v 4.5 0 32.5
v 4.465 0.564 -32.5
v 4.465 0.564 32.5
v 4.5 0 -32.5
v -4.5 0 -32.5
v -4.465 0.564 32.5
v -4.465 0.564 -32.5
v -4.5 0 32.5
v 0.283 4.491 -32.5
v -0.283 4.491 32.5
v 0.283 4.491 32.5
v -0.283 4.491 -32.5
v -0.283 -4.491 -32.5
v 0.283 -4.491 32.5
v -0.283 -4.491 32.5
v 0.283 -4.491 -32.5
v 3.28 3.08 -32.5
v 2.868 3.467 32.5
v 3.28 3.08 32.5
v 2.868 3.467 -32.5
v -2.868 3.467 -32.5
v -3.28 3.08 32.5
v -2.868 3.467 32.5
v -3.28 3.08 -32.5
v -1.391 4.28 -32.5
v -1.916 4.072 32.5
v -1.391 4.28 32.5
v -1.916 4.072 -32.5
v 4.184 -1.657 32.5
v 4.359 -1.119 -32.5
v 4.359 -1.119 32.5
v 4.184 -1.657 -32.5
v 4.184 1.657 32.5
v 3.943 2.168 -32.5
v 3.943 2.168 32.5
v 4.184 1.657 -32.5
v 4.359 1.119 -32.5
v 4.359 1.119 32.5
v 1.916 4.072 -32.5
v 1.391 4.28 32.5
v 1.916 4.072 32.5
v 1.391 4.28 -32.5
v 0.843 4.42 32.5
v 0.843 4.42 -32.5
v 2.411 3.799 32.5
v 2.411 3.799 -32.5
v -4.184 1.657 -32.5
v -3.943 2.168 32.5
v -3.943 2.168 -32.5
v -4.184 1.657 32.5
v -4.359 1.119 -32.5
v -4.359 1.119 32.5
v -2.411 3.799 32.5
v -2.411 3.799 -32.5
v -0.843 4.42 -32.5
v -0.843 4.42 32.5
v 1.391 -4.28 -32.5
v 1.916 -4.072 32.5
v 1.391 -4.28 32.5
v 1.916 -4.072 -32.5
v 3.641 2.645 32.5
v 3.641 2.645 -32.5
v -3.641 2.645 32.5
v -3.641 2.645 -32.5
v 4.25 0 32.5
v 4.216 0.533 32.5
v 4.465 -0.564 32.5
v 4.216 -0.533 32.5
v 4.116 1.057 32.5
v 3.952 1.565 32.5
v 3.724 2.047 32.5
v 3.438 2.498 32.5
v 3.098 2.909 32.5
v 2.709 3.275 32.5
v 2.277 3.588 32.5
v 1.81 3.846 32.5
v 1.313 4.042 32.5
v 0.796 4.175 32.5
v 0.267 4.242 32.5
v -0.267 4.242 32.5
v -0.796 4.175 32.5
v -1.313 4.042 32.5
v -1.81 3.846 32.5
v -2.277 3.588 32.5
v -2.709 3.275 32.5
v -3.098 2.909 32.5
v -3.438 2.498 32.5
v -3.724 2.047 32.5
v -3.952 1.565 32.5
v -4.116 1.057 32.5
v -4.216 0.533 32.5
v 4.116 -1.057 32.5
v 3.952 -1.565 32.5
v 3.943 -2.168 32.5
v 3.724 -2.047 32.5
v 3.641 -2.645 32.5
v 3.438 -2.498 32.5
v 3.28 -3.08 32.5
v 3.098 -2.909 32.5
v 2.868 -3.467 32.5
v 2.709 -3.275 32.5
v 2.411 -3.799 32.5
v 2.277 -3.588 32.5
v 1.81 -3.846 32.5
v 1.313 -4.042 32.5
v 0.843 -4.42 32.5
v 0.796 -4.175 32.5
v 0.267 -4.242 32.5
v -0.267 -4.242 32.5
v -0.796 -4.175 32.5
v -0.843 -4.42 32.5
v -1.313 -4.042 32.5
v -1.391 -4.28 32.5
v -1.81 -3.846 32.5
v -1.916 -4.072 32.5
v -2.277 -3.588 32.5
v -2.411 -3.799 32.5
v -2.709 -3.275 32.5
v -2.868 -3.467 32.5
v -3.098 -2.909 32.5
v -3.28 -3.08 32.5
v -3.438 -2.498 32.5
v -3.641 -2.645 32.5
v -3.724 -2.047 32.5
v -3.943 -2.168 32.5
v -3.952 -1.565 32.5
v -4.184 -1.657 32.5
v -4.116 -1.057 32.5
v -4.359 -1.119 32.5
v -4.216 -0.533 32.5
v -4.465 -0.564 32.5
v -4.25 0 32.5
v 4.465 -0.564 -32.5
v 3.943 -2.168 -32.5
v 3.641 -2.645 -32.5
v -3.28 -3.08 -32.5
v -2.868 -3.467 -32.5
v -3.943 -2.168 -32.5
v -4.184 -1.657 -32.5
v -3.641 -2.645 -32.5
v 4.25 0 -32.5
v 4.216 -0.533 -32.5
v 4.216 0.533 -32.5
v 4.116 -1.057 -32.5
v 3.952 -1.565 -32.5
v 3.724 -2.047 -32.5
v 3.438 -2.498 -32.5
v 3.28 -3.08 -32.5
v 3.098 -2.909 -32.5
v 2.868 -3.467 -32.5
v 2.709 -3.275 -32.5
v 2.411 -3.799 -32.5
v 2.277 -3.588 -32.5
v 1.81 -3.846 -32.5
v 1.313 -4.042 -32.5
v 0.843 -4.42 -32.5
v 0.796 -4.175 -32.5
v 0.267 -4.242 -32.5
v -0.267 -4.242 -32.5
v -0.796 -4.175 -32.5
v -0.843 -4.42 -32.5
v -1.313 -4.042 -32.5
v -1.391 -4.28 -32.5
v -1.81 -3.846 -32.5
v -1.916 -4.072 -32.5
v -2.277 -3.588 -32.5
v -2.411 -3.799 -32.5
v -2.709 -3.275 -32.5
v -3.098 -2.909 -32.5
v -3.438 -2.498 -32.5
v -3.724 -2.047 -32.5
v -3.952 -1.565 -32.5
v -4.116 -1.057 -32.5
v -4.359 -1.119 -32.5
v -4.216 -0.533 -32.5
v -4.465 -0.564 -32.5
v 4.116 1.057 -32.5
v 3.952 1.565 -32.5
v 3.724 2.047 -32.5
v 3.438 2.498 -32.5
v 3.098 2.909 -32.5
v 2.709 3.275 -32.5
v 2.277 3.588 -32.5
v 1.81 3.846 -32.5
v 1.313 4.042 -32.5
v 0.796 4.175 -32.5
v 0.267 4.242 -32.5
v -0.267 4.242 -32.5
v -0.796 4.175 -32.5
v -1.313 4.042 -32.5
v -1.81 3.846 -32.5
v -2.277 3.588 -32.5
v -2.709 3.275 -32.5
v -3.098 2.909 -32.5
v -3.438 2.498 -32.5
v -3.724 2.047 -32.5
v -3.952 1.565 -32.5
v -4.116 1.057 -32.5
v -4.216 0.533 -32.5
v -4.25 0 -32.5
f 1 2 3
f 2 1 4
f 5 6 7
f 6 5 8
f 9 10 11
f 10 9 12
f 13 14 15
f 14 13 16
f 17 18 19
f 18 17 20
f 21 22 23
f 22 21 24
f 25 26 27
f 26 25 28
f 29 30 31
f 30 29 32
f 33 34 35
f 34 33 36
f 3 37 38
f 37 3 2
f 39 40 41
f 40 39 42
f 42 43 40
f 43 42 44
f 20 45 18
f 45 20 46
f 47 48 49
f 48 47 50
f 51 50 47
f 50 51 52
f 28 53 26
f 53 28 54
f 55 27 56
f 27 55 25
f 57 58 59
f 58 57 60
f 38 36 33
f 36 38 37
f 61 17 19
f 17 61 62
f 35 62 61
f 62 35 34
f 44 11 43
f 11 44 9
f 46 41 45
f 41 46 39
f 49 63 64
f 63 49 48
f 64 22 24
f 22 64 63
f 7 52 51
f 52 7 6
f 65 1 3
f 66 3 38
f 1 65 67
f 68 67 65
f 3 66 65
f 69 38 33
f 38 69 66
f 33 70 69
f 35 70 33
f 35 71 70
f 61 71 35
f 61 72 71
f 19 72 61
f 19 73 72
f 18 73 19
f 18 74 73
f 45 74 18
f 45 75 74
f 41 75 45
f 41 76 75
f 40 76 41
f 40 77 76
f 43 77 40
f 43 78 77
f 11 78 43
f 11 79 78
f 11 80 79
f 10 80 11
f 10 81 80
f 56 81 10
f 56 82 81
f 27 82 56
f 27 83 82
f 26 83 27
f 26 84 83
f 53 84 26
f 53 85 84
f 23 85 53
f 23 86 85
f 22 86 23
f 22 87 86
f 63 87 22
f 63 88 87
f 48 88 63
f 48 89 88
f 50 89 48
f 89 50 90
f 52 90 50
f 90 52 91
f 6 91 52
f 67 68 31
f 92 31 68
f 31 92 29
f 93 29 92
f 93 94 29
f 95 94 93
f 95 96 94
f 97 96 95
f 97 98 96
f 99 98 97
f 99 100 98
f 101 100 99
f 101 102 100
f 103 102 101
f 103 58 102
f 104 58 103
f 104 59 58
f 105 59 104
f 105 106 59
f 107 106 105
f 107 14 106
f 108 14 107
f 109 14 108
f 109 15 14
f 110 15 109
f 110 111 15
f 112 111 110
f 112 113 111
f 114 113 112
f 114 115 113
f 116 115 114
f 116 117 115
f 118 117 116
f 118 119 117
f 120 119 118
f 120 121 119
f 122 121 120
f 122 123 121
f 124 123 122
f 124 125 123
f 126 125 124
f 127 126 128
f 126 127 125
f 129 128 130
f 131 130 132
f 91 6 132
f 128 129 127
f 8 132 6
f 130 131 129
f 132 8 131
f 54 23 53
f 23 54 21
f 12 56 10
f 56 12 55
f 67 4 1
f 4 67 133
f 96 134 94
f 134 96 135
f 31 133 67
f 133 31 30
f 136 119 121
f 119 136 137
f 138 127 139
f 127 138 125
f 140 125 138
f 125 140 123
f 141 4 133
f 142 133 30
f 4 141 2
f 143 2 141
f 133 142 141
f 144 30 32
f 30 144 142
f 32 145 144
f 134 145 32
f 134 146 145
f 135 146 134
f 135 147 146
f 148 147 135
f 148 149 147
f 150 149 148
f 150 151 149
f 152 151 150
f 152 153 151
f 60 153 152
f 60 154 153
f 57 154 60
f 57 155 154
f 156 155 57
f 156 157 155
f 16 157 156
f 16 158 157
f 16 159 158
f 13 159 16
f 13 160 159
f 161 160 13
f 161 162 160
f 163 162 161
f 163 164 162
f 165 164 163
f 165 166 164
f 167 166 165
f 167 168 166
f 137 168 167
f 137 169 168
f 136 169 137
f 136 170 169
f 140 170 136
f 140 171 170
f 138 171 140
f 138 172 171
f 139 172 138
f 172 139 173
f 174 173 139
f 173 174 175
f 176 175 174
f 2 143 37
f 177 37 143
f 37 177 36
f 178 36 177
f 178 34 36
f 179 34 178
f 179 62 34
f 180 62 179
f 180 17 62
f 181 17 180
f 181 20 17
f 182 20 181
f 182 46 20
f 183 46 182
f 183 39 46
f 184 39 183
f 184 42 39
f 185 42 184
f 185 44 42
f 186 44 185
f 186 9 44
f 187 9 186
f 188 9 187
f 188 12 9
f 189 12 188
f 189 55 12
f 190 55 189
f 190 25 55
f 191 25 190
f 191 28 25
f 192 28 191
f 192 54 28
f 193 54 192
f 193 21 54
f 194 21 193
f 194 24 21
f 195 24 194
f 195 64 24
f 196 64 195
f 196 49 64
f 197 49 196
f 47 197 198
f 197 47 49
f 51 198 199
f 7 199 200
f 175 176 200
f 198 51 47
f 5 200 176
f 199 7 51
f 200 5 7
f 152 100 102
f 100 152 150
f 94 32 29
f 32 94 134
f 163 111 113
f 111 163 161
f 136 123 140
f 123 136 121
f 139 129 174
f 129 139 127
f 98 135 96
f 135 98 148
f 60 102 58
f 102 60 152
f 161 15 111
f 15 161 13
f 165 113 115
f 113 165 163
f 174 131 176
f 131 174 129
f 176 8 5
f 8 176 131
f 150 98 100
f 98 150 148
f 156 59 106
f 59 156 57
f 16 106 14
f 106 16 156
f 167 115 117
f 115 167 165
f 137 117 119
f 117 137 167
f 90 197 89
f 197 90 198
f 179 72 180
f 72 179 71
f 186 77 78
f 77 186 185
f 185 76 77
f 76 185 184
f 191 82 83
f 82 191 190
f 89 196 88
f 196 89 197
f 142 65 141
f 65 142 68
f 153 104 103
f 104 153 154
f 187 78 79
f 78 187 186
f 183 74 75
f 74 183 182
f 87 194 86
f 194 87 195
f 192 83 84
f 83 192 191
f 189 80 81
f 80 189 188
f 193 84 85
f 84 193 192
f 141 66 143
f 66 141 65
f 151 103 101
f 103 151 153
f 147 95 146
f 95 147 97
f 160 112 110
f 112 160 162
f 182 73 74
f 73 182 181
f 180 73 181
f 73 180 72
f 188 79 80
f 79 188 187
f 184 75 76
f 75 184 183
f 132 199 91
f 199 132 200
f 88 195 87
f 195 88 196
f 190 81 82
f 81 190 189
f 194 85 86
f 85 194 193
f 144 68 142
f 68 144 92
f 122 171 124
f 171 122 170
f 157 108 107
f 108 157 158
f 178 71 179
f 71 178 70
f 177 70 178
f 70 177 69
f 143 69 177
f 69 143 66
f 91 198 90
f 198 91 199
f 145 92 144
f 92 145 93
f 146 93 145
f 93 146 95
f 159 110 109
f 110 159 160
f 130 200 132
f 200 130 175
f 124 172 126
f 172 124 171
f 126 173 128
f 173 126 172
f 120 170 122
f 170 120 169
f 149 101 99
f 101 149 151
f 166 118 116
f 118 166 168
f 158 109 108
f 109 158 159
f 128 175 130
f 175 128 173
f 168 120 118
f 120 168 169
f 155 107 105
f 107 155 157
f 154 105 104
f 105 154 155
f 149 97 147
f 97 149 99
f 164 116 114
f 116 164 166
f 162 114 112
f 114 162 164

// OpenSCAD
$fn = 50;


difference() {
	union() {
		translate(v = [0, 0, -32.5000000000]) {
			cylinder(h = 65, r = 4.5000000000);
		}
	}
	union() {
		translate(v = [0, 0, -100.0000000000]) {
			cylinder(h = 200, r = 4.2500000000);
		}
	}
}
